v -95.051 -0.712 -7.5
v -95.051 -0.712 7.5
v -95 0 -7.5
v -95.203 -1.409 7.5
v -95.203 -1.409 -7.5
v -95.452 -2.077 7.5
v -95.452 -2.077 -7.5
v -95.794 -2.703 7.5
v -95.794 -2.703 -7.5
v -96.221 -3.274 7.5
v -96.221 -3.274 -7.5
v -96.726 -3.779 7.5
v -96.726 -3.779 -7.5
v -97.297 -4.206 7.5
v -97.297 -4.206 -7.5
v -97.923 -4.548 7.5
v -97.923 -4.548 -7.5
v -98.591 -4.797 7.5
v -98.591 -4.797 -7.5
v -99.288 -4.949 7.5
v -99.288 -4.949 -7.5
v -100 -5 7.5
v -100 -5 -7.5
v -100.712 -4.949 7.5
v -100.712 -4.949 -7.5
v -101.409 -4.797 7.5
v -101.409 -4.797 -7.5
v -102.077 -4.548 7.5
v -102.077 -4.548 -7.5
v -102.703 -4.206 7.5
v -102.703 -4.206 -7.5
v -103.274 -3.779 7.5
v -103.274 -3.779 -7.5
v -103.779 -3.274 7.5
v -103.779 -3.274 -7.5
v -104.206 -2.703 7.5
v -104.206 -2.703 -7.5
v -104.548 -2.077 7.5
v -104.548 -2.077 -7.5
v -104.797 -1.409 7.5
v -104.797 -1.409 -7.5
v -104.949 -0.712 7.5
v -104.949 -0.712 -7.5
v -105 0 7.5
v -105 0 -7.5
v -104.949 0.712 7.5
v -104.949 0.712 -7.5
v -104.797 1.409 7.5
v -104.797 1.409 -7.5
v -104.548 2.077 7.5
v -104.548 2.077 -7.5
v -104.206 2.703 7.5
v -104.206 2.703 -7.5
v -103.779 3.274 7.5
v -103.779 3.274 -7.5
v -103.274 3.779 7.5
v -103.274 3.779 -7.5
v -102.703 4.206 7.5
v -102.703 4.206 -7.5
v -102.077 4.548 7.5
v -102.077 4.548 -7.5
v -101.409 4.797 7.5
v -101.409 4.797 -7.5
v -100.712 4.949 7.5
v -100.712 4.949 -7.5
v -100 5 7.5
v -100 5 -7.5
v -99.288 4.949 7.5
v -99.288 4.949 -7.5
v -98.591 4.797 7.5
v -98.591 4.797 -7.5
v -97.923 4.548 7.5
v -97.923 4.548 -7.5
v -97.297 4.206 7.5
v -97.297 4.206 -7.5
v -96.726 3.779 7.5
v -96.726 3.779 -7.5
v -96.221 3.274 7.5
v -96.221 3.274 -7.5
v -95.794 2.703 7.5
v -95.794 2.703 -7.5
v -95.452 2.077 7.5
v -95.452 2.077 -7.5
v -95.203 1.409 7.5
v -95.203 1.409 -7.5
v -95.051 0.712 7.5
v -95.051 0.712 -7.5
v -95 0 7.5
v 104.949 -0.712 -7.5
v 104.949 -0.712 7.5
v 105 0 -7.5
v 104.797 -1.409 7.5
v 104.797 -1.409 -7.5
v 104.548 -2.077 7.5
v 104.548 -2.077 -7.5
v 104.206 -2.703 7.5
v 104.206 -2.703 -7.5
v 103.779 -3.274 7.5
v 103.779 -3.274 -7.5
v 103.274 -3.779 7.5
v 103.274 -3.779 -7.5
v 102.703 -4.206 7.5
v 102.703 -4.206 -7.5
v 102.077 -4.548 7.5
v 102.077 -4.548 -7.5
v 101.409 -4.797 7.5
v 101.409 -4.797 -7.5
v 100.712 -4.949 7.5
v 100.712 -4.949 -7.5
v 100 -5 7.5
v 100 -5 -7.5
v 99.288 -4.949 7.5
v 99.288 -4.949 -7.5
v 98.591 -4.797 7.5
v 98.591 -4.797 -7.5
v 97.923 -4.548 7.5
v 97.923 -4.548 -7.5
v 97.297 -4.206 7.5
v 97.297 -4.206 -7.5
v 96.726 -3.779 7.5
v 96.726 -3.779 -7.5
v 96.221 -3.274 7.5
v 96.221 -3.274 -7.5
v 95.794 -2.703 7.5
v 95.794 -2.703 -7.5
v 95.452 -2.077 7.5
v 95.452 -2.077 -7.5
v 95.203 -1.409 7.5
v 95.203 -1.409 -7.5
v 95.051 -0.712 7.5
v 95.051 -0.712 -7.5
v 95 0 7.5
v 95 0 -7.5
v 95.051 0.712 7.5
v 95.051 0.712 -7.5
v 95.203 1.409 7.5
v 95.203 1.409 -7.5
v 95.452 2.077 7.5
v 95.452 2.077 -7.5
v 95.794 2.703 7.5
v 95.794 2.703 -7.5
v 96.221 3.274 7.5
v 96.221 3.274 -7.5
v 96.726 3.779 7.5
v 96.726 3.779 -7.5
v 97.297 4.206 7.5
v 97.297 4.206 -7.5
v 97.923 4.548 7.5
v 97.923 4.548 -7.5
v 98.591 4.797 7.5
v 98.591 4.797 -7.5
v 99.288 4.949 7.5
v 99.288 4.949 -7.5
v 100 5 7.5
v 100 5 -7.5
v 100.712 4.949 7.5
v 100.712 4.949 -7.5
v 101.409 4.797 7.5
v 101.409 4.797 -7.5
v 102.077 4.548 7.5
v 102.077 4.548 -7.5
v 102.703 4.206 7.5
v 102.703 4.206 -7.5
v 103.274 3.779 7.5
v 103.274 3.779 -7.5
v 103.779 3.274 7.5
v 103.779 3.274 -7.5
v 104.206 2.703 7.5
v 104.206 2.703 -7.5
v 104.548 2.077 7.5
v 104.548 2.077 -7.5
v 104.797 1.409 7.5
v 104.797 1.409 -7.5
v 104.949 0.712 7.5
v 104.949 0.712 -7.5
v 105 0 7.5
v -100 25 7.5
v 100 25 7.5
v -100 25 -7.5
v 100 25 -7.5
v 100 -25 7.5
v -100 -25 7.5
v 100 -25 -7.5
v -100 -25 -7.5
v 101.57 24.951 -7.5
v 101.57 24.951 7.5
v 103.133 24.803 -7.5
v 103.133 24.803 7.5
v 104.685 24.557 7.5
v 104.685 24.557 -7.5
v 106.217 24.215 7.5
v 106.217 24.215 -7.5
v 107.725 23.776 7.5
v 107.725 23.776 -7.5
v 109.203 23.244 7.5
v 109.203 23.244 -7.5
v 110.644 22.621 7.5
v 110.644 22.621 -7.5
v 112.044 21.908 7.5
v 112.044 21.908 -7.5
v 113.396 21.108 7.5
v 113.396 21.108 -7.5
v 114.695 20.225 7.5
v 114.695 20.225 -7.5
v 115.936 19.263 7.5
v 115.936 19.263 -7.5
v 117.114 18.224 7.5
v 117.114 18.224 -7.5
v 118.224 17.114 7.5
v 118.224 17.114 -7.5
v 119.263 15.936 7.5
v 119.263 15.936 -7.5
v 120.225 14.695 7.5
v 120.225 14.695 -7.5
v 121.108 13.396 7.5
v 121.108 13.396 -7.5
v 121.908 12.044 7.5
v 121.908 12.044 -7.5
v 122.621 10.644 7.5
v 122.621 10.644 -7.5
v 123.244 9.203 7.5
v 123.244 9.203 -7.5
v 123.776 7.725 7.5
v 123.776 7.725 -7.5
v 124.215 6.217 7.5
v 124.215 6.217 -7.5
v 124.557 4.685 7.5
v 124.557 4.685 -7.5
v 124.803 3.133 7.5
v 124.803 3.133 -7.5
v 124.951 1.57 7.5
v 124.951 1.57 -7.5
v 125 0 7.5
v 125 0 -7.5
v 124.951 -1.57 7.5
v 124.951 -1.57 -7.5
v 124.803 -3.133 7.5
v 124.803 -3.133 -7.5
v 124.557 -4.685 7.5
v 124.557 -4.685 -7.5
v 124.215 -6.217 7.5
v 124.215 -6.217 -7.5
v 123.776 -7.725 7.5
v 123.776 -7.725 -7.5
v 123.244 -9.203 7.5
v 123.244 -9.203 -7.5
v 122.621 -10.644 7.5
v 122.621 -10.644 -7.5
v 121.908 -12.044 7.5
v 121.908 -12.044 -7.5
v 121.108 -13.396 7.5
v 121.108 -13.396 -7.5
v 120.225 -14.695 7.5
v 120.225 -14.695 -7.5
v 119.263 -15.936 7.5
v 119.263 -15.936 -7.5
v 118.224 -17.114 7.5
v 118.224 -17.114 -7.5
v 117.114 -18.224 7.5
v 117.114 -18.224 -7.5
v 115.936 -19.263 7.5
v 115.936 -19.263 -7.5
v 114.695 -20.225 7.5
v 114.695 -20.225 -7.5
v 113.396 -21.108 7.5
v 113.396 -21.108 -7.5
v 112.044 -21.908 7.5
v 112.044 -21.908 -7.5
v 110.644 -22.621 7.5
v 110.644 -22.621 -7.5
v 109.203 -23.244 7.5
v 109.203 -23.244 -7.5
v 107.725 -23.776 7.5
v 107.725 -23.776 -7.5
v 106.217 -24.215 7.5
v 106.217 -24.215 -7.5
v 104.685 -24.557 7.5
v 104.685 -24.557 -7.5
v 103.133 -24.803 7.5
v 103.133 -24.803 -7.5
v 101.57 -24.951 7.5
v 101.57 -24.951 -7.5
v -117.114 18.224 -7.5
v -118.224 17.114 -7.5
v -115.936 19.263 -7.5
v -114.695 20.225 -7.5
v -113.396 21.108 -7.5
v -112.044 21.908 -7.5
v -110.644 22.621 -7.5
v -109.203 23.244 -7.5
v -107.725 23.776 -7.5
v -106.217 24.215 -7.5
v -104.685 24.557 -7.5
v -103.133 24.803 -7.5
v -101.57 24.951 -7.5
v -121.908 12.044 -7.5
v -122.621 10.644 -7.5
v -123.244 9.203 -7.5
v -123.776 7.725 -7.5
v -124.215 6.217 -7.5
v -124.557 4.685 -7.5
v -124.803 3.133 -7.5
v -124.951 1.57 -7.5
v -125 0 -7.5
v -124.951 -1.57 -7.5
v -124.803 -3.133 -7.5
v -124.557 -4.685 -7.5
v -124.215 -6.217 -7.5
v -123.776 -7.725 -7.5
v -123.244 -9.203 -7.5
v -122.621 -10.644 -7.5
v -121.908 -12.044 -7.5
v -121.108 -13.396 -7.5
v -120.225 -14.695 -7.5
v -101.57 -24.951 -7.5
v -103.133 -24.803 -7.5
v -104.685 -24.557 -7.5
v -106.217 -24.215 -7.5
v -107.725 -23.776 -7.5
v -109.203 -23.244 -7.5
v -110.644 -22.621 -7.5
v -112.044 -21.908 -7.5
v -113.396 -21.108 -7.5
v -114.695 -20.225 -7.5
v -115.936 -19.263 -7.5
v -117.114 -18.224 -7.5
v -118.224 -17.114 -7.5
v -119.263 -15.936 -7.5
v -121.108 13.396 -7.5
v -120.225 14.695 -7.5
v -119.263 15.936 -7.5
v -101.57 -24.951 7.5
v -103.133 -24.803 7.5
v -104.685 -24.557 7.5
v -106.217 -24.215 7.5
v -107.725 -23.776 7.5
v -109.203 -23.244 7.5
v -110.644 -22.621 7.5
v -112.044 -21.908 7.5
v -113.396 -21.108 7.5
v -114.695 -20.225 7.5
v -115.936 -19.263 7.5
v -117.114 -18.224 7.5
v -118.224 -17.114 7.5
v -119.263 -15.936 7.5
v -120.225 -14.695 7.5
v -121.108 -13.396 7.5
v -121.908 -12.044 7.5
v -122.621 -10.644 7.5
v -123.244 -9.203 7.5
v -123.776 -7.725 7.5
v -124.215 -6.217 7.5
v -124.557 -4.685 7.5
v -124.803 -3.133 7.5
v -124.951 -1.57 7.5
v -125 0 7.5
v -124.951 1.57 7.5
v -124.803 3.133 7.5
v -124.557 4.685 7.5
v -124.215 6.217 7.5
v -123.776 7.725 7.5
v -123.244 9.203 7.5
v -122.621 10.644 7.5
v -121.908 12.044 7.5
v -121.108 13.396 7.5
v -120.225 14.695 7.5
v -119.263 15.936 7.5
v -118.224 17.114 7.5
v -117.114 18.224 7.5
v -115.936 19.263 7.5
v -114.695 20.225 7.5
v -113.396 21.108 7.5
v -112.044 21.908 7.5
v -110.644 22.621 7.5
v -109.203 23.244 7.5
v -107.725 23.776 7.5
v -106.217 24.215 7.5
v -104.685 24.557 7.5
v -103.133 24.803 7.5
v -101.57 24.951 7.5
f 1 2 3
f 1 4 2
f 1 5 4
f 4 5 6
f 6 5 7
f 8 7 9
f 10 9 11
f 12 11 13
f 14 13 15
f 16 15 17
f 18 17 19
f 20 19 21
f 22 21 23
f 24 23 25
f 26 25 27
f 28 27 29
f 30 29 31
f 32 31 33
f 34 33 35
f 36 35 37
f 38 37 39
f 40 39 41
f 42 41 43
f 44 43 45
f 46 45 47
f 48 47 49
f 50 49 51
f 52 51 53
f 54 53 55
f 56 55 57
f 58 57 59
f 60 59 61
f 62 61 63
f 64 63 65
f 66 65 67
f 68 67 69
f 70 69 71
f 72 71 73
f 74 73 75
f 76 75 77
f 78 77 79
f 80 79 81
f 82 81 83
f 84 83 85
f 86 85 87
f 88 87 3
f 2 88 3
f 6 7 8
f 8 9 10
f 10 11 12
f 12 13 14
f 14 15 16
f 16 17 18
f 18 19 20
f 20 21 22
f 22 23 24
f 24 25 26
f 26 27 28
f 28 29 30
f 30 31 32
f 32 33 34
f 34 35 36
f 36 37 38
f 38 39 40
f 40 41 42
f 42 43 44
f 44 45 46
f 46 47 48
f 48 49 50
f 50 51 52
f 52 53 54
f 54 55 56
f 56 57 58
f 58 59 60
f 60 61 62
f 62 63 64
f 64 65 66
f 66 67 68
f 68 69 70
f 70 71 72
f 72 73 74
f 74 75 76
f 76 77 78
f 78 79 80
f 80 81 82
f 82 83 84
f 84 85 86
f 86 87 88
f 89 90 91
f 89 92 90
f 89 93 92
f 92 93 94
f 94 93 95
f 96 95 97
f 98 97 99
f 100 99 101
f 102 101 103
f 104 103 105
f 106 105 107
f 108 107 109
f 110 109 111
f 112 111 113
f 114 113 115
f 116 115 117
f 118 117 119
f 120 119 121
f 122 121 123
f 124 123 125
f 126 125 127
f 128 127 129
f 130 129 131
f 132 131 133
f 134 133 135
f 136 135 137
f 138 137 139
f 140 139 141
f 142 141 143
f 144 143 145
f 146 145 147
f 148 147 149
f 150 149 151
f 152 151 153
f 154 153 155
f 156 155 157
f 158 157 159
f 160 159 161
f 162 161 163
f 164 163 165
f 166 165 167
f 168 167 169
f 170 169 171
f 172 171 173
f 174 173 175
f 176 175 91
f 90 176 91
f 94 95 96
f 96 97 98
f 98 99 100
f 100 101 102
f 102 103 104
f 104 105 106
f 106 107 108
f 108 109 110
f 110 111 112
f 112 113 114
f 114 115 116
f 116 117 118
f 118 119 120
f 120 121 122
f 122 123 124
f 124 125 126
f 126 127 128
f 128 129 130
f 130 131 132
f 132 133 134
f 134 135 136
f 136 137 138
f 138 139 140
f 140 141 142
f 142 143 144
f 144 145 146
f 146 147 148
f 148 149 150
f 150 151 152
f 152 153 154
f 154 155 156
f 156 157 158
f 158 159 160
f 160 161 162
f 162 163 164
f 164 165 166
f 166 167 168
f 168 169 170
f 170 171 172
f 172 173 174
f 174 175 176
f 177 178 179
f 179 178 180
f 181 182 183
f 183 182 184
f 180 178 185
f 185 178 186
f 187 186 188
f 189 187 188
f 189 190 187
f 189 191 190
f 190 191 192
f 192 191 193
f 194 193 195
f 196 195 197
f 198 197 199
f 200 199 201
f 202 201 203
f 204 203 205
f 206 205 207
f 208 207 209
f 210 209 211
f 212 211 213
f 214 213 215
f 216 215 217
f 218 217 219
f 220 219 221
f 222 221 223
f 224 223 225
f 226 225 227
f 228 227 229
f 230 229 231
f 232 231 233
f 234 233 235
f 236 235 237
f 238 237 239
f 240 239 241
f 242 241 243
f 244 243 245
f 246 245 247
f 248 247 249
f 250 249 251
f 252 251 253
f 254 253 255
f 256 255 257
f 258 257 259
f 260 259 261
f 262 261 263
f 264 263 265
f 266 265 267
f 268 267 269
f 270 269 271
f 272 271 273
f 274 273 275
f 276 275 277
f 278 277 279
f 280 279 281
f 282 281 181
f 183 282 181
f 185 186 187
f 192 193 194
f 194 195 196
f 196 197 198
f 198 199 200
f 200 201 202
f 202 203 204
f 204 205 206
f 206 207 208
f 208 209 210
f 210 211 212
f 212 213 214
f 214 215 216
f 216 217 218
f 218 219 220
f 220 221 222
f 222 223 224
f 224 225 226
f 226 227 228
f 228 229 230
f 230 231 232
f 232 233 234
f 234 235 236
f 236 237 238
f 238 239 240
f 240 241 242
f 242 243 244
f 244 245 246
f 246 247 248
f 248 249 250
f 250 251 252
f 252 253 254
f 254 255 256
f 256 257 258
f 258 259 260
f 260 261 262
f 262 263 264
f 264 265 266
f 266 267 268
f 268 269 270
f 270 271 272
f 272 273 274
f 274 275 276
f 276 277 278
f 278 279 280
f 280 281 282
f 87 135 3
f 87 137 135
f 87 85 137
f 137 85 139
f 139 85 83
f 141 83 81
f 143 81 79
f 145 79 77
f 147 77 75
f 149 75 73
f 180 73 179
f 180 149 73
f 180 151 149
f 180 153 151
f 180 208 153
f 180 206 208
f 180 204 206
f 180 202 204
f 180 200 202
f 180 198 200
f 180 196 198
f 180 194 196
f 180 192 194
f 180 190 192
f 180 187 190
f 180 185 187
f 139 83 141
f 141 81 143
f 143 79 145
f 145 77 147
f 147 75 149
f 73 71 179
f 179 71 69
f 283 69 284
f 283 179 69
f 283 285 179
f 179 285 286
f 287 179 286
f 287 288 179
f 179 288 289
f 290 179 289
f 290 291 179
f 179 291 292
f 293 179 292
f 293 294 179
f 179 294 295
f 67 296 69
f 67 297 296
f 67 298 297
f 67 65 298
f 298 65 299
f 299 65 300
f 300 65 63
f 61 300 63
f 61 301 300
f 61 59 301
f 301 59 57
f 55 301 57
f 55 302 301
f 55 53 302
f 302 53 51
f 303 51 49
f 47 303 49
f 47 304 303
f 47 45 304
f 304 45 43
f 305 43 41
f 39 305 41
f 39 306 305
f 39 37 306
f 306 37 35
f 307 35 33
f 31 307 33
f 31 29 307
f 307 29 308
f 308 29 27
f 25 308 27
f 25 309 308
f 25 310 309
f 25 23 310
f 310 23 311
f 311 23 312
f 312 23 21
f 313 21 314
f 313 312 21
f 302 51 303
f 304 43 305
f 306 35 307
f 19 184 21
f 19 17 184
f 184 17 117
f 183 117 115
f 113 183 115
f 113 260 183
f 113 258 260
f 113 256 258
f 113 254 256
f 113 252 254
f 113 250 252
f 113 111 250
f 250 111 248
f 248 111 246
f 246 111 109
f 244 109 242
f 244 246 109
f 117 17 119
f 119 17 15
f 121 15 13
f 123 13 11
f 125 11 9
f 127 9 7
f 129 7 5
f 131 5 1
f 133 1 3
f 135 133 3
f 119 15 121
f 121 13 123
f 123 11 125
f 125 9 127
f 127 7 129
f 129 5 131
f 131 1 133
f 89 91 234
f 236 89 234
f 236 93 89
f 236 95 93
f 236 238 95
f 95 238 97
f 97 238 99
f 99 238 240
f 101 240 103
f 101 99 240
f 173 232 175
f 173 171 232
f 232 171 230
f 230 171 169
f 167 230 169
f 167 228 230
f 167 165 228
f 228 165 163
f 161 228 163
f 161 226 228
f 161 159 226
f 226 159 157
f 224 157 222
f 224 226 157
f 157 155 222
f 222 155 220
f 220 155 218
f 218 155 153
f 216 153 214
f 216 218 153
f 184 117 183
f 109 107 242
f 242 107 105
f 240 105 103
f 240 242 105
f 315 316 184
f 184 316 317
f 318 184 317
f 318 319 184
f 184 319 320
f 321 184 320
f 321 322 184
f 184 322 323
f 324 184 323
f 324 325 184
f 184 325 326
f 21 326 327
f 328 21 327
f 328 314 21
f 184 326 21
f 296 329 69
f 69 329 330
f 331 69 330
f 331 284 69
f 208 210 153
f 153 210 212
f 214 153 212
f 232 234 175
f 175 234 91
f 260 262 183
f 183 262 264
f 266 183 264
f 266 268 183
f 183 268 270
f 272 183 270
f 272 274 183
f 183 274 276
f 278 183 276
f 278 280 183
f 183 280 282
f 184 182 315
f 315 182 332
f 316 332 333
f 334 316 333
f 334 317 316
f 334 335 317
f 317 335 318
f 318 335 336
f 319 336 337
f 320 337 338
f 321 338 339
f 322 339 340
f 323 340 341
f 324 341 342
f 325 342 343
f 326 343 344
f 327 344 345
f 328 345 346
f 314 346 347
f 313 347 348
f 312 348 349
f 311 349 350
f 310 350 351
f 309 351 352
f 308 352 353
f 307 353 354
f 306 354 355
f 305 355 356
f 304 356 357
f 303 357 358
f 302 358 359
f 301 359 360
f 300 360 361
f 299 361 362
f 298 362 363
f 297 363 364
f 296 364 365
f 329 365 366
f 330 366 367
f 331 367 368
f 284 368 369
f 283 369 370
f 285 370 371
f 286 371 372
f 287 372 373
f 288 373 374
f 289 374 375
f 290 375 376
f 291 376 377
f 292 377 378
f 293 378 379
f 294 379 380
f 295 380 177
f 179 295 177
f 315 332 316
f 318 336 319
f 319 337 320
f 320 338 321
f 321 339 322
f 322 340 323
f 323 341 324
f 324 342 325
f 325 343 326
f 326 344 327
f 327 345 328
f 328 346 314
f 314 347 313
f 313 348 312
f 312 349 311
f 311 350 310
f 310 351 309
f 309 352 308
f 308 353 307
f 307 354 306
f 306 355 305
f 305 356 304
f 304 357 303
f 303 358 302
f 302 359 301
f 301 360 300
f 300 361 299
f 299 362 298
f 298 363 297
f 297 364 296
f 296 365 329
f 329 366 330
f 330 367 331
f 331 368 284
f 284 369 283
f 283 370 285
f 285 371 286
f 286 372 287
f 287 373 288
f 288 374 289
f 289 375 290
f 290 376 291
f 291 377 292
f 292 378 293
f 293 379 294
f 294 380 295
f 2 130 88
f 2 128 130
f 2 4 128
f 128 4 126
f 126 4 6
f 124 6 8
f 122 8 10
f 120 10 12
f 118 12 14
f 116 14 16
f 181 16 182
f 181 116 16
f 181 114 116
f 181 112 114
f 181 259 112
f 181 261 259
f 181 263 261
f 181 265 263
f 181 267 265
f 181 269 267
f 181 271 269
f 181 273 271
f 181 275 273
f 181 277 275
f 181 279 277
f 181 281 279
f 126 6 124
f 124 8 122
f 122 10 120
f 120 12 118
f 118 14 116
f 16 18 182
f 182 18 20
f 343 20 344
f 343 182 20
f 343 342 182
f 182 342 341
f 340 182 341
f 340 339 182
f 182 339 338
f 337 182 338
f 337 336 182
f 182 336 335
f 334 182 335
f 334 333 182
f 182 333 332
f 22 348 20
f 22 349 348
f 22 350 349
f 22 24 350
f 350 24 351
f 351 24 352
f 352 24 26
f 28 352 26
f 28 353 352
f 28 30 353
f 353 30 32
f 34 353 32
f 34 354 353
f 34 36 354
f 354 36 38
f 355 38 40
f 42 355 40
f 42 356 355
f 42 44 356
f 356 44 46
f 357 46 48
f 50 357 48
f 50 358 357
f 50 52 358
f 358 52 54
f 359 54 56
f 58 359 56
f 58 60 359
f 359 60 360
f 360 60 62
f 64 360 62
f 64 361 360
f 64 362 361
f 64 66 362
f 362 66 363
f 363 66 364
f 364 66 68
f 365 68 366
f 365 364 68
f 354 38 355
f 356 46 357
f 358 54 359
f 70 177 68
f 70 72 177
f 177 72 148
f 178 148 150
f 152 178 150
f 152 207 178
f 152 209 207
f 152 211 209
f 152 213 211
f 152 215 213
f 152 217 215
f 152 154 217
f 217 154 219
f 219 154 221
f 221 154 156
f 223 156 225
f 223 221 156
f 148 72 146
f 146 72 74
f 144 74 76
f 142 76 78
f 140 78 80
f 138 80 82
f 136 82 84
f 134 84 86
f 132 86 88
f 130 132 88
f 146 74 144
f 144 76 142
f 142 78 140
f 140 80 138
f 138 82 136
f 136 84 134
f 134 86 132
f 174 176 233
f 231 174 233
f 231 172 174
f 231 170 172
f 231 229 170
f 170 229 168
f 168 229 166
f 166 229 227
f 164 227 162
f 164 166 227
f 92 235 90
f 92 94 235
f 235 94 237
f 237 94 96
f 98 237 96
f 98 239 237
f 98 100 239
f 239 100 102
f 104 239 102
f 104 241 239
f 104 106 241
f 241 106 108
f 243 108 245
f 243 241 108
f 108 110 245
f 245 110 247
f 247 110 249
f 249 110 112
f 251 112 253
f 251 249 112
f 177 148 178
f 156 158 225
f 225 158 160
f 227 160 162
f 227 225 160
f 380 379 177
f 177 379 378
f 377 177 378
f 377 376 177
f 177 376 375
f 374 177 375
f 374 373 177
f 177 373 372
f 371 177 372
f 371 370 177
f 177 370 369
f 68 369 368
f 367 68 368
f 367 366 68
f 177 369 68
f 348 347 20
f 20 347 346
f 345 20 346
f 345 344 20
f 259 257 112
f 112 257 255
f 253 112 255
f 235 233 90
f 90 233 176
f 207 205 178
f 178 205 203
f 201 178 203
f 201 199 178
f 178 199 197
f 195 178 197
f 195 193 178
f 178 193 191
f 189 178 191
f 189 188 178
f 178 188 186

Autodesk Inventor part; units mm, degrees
ref_plane "YZ Plane" through (0, 0, 0) normal (1, 0, 0) x (0, 1, 0)
ref_plane "XZ Plane" through (0, 0, 0) normal (0, 1, 0) x (-1, 0, 0)
ref_plane "XY Plane" through (0, 0, 0) normal (0, 0, 1) x (1, 0, 0)
sketch "スケッチ1" plane through (0, 0, 0) normal (0, 0, 1) x (1, 0, 0)
  line L0 (-100, 25) -> (100, 25)
  line L1 (100, 25) -> (100, -25)
  line L2 (100, -25) -> (-100, -25)
  line L3 (-100, -25) -> (-100, 25)
  arc A0 (-100, 25) -> (-100, -25) centre (-100, 0) ccw
  arc A1 (100, -25) -> (100, 25) centre (100, 0) ccw
  point P0 (0, 0)
  dimension "d0" = 200
  dimension "d1" = 50
  dimension "d2" = 25
  dimension "d3" = 100
extrude "押し出し1" add sketch "スケッチ1" along normal mid plane 15
sketch "スケッチ2" plane through (0, 0, 7.5) normal (0, 0, 1) x (1, 0, 0)
  line L0 (100, 25) -> (-100, 25) projected
  line L1 (-100, -25) -> (100, -25) projected
  arc A0 (-100, 25) -> (-100, -25) centre (-100, 0) ccw projected
  arc A1 (100, -25) -> (100, 25) centre (100, 0) ccw projected
  circle A2 centre (-100, 0) radius 5
  circle A3 centre (100, 0) radius 5
  point P0 (0, 0)
  dimension "d6" = 10
  dimension "d7" = 10
extrude "押し出し2" cut sketch "スケッチ2" against normal through all contours A2 | A3
equation "\"d2\" = 0.5 * d1"
equation "\"d3\" = 0.5 * d0"
properties part number "Arm1" material "アルミニウム 6061"
